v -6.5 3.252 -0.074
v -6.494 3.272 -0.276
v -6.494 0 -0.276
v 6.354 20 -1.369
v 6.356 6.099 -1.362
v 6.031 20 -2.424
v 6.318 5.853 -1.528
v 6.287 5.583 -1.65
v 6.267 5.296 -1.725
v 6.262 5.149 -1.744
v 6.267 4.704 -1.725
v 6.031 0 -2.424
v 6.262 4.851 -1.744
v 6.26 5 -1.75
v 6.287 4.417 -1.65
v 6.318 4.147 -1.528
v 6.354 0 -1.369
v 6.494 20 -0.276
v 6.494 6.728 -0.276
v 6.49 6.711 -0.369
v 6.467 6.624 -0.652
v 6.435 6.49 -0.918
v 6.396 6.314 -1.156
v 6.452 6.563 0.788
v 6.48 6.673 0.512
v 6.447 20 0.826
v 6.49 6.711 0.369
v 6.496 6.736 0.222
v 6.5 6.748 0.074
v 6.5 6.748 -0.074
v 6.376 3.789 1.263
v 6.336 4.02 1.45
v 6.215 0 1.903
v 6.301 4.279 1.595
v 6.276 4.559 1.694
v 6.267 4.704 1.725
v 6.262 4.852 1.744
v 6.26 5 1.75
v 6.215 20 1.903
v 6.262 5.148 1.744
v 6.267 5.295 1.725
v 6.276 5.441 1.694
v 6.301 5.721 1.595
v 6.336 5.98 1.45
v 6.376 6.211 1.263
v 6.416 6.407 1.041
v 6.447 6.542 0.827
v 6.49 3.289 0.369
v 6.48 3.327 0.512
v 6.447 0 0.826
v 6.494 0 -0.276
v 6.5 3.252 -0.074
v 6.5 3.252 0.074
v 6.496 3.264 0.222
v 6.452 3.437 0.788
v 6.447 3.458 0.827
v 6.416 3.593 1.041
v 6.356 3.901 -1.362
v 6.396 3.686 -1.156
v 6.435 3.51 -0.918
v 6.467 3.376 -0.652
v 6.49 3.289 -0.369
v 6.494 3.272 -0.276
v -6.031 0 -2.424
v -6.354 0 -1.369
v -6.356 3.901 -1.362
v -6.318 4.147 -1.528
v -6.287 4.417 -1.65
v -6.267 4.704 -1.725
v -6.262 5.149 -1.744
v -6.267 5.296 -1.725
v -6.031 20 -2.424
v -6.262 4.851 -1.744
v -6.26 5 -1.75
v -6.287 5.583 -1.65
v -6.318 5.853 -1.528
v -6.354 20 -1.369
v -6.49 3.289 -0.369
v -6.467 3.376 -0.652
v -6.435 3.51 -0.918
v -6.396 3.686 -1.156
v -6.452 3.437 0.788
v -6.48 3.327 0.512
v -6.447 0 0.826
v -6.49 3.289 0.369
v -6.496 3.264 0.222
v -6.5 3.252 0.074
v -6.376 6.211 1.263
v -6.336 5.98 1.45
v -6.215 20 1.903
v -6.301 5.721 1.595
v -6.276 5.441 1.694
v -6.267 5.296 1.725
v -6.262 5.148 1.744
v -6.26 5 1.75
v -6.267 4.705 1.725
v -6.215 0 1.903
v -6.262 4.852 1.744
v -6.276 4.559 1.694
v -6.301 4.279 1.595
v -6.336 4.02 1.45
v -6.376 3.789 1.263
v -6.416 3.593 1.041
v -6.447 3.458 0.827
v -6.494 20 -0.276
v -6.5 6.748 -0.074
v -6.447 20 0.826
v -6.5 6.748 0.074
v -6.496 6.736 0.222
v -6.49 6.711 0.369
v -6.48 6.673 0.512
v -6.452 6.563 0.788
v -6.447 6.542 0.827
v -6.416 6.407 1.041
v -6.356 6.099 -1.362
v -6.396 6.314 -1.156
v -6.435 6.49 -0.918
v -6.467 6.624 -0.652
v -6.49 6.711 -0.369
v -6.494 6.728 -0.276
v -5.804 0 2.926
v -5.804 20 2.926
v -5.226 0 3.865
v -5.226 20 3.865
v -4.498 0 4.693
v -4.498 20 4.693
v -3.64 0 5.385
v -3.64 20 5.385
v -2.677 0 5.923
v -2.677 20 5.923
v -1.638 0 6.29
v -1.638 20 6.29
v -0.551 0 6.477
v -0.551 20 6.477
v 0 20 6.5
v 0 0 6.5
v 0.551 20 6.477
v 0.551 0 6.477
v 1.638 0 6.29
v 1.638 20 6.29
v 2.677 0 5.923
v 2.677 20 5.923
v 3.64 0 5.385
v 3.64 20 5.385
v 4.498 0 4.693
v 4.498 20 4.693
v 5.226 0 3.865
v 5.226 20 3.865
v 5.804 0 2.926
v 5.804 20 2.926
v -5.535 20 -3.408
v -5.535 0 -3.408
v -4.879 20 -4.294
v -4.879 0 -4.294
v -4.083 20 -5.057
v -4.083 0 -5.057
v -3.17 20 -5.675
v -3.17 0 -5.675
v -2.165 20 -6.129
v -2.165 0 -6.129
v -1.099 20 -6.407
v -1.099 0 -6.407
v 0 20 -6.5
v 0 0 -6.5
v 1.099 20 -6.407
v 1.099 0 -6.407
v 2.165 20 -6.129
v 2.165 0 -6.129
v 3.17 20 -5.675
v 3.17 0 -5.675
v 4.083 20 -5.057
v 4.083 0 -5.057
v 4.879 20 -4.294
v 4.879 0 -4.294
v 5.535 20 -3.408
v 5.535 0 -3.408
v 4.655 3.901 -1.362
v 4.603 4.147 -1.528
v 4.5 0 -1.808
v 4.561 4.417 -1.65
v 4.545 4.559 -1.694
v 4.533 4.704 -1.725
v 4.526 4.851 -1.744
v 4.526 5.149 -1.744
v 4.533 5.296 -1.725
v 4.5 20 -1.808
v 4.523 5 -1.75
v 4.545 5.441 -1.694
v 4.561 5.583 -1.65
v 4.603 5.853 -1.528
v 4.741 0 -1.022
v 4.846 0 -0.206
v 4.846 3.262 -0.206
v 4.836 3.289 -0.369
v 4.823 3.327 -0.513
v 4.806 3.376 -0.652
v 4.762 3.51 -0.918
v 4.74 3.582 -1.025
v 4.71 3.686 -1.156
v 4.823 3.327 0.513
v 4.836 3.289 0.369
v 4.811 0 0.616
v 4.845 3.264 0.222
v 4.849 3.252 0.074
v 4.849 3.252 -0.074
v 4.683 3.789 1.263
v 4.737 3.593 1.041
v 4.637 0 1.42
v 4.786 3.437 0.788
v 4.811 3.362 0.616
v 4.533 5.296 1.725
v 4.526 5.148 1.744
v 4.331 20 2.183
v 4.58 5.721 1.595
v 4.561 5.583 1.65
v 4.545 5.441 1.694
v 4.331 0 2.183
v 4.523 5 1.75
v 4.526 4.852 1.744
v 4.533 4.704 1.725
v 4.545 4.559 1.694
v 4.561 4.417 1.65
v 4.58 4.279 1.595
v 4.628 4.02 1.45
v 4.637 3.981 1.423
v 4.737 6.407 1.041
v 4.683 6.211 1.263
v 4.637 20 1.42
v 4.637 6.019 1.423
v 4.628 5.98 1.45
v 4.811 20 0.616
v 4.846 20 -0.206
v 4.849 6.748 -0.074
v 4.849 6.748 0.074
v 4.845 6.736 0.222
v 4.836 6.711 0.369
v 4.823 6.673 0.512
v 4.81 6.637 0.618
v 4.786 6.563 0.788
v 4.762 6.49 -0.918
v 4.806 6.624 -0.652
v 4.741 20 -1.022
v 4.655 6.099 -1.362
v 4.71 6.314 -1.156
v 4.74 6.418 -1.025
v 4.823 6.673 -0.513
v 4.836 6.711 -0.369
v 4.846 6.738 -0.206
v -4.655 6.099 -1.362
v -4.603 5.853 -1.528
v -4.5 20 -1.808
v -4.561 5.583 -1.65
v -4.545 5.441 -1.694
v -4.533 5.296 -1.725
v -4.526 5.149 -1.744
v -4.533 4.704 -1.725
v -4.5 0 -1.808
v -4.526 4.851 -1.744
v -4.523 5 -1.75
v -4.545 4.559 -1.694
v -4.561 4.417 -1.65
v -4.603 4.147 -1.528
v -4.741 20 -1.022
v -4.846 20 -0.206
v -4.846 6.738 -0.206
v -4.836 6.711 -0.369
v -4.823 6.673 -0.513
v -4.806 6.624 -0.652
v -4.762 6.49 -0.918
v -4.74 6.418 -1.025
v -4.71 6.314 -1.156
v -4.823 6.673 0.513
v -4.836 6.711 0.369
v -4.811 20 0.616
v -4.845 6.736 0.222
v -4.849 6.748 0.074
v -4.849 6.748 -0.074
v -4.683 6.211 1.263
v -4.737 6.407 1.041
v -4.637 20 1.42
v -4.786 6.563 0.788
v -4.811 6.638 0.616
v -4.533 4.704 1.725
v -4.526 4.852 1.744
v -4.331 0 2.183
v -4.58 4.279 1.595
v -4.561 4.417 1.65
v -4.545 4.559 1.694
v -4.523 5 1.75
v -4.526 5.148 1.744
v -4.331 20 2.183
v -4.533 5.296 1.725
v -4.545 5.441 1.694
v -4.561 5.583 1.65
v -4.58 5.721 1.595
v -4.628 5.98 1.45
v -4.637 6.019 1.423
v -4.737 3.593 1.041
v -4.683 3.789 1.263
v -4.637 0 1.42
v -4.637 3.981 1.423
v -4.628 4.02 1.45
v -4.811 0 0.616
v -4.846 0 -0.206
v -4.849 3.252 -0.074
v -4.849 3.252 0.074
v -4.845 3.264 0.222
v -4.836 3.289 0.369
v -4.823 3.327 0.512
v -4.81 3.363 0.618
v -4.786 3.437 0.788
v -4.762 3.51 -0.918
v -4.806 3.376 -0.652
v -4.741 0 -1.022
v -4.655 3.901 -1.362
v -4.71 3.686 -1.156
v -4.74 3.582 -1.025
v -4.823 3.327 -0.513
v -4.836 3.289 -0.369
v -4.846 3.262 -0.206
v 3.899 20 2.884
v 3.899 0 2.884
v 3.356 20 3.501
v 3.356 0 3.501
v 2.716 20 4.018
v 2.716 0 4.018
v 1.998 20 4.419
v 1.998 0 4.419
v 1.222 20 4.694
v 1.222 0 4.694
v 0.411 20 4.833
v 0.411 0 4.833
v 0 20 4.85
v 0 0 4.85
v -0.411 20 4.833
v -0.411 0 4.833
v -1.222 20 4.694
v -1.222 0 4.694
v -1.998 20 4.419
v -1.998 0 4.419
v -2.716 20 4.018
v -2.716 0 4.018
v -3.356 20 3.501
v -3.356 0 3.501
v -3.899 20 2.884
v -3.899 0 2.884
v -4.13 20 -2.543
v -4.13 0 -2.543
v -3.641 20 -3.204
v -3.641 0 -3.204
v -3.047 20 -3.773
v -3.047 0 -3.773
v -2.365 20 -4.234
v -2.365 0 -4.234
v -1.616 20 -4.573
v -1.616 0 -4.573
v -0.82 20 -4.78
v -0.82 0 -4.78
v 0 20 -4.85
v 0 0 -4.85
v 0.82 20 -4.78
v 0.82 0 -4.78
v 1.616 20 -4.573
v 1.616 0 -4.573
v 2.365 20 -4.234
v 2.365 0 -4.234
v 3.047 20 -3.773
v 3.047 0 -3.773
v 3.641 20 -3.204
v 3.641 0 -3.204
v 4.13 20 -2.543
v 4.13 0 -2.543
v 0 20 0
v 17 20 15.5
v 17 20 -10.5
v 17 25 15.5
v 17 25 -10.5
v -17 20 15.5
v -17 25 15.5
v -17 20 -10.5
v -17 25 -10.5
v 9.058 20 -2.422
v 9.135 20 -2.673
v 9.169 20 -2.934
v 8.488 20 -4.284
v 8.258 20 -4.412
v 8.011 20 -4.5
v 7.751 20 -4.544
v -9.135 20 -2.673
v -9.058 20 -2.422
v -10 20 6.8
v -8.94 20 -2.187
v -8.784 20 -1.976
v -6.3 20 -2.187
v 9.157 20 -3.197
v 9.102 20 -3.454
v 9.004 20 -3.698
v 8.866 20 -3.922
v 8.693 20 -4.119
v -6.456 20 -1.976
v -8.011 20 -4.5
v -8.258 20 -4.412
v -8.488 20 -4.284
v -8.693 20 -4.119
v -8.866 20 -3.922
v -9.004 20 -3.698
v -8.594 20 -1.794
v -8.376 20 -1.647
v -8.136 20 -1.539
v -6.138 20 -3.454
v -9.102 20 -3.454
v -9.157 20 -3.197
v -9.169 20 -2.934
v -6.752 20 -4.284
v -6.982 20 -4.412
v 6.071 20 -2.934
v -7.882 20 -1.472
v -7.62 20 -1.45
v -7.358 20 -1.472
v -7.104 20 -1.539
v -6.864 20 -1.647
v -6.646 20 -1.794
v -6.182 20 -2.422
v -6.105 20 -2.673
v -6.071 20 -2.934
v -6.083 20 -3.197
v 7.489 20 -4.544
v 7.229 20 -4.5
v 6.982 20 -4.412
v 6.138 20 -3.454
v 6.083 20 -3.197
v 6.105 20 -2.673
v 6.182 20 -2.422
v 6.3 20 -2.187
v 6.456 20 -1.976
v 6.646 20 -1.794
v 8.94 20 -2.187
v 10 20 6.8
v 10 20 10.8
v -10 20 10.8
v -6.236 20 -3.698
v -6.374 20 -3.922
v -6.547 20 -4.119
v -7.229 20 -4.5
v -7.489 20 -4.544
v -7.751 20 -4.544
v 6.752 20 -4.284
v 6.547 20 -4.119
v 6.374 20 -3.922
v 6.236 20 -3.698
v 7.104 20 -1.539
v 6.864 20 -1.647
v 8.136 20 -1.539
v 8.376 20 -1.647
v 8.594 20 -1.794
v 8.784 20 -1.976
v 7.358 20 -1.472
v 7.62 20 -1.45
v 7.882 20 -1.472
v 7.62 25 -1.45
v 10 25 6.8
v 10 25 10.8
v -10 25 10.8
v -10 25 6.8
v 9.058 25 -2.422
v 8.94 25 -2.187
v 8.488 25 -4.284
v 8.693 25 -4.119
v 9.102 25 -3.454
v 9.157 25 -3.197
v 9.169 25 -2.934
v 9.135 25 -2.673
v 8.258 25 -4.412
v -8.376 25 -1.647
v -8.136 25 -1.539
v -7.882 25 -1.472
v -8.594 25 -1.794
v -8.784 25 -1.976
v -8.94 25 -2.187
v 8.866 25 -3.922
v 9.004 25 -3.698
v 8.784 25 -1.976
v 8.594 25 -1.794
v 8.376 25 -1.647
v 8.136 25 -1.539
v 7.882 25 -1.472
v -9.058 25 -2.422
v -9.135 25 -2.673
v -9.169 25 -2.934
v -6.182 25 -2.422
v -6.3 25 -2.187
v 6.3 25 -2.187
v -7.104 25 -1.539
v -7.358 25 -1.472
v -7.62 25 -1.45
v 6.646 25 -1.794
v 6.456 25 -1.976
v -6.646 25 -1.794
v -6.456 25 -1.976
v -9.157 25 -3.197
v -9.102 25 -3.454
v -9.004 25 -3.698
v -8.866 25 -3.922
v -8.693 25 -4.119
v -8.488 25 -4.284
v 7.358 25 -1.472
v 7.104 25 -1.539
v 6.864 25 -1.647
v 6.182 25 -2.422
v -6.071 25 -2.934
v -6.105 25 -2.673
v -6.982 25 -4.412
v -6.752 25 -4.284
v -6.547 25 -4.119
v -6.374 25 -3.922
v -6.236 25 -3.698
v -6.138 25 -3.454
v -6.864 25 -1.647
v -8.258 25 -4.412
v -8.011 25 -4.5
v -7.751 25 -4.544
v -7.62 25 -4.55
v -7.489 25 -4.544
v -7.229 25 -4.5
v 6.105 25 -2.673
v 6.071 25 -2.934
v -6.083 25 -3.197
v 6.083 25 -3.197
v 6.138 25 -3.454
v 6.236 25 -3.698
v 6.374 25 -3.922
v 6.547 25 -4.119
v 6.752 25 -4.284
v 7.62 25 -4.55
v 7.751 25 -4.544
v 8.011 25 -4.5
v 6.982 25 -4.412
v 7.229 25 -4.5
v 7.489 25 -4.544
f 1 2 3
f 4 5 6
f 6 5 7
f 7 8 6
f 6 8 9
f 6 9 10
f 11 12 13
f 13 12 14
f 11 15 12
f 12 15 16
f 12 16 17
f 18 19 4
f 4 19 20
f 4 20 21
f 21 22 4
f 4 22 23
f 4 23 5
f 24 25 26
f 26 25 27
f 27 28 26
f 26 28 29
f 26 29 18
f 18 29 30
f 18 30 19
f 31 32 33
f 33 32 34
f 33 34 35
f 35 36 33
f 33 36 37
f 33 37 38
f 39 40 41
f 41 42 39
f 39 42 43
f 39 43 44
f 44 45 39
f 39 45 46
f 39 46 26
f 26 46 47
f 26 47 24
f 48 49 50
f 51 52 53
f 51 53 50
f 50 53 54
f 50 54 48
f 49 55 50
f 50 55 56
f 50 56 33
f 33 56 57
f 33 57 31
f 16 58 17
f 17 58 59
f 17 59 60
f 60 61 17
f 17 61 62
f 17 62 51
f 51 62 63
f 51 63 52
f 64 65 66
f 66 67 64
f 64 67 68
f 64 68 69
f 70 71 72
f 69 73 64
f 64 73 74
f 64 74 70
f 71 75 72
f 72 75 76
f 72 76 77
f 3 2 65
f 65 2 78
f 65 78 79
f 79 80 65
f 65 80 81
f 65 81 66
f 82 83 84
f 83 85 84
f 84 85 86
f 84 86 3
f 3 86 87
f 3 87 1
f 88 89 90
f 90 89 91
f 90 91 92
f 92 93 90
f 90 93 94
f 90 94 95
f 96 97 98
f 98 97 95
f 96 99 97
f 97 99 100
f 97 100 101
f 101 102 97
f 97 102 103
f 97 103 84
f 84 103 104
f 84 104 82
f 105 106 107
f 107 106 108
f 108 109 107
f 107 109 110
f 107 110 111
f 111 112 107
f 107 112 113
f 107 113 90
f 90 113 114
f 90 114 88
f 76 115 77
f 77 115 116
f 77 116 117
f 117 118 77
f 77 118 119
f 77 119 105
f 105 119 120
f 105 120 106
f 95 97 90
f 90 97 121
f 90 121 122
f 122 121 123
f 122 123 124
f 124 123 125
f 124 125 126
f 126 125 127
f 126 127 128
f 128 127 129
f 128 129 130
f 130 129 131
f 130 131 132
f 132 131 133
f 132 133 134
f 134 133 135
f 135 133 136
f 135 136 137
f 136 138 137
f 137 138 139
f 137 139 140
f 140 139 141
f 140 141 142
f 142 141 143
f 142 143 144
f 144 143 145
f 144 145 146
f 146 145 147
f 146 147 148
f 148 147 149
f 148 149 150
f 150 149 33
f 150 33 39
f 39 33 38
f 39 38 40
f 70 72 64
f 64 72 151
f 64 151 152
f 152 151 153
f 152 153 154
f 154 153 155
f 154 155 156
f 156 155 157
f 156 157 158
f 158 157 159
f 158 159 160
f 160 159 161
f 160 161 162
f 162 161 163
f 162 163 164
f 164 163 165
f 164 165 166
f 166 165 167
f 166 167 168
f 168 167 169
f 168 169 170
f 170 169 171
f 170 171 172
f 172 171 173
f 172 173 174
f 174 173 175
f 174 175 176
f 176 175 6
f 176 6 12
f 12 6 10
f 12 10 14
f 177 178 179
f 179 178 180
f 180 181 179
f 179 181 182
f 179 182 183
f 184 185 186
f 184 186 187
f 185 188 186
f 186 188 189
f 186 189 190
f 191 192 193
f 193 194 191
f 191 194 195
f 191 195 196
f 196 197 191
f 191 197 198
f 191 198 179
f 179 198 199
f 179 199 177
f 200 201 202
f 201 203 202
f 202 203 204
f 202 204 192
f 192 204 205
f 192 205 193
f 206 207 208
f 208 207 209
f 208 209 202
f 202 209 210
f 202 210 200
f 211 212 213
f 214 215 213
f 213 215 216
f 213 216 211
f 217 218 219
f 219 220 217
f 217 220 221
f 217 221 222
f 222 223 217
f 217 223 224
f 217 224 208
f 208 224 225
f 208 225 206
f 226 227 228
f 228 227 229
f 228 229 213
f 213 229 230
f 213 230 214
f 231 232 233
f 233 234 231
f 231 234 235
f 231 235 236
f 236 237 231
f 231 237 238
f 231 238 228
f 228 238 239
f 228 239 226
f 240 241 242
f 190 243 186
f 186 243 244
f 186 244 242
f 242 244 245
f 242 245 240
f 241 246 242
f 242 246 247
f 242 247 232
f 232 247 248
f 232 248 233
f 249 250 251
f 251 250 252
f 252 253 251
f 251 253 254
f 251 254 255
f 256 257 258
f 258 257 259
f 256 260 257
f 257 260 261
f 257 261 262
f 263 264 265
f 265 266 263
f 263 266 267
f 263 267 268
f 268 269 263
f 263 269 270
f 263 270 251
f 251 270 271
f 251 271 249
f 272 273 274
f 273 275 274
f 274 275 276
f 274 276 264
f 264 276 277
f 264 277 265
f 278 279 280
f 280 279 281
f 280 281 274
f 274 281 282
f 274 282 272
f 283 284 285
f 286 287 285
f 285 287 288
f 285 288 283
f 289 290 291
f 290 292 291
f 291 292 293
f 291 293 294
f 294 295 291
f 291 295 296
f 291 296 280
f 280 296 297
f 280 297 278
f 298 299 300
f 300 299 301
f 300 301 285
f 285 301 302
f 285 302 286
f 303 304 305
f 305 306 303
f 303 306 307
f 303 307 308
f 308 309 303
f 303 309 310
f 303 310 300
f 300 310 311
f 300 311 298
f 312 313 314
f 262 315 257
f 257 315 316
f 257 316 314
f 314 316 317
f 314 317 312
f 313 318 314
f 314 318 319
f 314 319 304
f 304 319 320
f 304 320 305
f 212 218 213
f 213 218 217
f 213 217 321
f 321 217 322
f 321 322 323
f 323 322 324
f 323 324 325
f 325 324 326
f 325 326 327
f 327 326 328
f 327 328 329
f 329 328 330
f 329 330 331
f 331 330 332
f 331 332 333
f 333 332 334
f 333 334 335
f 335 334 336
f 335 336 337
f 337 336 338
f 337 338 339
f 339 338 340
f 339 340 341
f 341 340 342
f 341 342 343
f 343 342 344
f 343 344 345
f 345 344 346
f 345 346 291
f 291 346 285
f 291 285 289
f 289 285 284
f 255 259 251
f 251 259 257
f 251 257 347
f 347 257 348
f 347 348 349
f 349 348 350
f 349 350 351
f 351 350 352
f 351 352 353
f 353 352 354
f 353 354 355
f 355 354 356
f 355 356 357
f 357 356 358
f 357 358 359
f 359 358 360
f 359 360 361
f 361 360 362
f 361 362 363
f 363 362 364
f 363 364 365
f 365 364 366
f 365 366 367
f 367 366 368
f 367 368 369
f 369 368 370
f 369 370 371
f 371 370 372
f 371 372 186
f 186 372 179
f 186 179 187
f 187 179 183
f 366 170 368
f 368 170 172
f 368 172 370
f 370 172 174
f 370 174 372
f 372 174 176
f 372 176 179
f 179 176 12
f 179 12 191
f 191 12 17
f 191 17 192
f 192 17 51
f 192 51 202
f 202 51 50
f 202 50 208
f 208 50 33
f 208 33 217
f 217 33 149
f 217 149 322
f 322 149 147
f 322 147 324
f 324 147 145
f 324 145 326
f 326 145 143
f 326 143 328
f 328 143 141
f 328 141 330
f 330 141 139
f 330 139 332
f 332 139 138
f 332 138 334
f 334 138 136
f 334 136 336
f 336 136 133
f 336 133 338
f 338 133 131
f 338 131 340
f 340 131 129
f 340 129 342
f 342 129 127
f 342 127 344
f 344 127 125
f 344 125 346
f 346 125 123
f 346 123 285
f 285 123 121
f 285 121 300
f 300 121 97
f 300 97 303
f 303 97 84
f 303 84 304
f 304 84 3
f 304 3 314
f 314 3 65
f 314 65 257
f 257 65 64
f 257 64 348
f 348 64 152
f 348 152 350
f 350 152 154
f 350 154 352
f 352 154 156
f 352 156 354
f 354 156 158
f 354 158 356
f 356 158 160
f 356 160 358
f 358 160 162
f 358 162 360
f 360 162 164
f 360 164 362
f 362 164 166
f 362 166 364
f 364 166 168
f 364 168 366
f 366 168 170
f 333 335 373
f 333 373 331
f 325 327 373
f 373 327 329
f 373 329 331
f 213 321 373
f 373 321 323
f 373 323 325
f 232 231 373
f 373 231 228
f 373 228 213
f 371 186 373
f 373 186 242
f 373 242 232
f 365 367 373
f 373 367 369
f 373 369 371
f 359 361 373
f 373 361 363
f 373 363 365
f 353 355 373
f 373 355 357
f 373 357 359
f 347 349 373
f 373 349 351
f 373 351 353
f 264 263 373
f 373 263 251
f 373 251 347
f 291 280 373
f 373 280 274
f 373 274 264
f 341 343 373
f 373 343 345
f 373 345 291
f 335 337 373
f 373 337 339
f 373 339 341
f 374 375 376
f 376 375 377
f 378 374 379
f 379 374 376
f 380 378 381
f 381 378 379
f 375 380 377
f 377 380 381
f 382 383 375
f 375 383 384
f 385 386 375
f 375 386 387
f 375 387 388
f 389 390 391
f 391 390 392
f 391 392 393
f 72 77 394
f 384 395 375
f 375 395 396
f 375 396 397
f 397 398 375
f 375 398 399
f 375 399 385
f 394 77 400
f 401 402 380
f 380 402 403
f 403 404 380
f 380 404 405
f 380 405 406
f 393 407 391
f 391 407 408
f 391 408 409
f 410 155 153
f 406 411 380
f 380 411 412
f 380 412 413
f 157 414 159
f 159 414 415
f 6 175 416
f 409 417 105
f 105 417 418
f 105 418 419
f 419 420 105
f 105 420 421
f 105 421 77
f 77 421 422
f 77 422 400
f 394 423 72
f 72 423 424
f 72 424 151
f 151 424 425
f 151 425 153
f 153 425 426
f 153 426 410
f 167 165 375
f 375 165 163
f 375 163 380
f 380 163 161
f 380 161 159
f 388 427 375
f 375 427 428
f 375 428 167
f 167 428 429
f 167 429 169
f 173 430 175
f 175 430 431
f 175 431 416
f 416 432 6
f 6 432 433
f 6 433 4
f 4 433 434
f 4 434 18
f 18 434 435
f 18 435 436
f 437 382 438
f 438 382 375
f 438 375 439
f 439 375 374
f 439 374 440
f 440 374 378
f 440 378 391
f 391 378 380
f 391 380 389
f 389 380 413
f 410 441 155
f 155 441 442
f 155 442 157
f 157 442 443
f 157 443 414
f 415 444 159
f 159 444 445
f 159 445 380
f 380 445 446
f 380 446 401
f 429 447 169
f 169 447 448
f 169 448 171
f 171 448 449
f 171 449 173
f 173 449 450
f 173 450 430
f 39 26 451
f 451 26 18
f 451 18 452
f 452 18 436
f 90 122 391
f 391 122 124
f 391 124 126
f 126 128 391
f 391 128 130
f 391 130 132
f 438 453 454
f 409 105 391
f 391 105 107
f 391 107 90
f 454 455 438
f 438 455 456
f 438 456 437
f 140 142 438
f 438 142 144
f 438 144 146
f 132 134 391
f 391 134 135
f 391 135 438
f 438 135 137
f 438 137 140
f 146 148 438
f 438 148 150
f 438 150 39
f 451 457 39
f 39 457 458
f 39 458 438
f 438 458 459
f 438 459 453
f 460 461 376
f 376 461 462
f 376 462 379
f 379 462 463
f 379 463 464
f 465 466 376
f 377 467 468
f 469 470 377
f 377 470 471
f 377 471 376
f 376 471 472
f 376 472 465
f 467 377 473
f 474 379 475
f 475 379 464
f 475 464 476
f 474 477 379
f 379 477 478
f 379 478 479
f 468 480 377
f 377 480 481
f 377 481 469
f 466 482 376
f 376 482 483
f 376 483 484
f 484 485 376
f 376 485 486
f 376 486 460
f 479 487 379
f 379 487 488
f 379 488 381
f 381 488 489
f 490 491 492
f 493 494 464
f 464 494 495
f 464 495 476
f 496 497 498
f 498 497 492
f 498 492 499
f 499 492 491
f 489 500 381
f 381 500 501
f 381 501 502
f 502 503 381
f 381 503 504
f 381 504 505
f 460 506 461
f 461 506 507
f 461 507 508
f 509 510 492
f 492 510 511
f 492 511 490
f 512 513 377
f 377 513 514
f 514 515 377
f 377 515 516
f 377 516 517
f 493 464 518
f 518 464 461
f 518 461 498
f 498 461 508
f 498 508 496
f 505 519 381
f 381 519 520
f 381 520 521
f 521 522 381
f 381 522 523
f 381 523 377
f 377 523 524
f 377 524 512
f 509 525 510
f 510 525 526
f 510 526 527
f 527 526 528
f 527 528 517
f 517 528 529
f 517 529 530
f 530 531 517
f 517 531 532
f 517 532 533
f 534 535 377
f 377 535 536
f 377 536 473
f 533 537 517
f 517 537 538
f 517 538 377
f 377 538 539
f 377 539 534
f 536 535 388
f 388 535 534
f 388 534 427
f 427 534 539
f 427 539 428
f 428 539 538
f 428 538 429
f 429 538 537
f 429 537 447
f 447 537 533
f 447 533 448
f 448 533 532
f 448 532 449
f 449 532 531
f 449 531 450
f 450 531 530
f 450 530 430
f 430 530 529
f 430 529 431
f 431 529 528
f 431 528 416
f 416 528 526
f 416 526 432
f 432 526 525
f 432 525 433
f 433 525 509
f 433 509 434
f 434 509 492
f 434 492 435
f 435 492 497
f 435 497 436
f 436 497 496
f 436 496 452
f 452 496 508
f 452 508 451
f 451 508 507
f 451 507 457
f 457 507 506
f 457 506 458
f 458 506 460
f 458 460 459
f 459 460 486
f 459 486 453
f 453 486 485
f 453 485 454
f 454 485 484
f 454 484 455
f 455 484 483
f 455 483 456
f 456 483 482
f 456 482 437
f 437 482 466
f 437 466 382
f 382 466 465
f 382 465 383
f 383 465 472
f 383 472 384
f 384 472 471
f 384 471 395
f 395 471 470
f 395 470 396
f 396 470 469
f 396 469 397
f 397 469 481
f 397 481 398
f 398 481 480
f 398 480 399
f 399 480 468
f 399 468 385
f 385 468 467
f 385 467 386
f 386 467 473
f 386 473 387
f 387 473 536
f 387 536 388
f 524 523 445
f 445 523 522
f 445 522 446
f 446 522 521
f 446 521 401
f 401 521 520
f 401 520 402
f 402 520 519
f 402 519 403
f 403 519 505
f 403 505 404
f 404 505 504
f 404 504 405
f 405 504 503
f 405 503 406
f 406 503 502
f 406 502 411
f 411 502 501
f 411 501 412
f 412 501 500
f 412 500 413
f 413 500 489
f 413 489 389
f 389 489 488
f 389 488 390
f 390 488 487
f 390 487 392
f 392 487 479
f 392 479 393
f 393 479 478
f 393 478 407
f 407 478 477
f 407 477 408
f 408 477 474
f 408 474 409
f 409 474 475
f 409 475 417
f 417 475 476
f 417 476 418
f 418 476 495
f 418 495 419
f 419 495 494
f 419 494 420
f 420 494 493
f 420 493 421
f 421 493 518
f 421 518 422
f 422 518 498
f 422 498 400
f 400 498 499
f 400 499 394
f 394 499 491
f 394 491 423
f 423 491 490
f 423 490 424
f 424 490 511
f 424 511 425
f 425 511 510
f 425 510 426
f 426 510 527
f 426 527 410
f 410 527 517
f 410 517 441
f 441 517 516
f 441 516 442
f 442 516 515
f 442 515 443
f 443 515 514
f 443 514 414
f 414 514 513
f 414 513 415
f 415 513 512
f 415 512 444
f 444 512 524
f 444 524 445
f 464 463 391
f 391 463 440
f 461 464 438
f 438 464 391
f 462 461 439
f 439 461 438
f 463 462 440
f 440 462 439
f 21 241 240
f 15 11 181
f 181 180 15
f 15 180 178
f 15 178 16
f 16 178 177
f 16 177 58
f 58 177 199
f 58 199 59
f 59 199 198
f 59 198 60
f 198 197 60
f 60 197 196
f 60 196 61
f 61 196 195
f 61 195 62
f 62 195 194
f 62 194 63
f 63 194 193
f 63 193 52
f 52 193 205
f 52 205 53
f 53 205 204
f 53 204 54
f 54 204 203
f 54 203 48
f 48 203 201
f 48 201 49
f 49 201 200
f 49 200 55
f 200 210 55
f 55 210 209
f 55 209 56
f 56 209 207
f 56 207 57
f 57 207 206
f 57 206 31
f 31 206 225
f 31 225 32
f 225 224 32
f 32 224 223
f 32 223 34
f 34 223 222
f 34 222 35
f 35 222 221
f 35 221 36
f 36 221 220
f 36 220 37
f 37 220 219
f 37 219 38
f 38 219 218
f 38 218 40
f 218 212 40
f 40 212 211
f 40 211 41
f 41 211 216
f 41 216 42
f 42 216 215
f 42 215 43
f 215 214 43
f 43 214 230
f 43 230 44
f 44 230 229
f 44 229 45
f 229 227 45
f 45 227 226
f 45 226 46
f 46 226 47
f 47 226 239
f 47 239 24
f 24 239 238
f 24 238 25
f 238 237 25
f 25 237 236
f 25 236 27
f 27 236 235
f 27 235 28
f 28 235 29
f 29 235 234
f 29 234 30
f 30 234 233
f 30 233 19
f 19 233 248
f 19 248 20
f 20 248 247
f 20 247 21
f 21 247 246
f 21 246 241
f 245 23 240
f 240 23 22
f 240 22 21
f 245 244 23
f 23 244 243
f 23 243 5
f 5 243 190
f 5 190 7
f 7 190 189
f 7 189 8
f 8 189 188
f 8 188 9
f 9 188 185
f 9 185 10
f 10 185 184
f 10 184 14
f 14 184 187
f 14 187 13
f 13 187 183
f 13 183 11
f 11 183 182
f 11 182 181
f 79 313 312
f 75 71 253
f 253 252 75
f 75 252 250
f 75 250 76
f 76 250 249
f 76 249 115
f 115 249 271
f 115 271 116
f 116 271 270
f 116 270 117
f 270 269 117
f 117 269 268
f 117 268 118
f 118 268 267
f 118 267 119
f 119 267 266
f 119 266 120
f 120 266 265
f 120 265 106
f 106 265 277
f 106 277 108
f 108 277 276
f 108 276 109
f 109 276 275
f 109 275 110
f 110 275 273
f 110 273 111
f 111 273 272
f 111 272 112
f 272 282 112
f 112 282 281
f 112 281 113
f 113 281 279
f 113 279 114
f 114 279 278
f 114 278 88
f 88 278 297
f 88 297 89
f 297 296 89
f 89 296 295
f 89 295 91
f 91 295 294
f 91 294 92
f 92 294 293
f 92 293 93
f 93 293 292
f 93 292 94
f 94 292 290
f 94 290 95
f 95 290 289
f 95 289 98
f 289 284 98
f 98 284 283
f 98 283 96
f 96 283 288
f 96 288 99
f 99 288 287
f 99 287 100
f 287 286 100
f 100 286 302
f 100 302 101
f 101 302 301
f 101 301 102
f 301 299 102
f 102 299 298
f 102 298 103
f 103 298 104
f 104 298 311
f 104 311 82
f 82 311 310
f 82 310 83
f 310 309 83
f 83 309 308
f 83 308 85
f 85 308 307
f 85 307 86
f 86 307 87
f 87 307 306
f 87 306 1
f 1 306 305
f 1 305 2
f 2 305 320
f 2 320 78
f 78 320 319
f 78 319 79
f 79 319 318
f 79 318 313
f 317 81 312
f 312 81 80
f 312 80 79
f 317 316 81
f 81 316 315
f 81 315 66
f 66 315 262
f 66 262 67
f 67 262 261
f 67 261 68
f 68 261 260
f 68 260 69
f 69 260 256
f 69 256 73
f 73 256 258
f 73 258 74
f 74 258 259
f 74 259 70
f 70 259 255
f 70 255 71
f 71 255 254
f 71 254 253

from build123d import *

# Parameters (mm, degrees)
SKETCH1_R               = 6.5
SKETCH1_R_2             = 4.85
BOSS_EXTRUDE1_DEPTH     = 25
SKETCH2_W               = 34
SKETCH2_H               = 26
BOSS_EXTRUDE2_DEPTH     = 5
CUT_EXTRUDE1_DEPTH      = 31.483602149
CUT_EXTRUDE1_DEPTH_BACK = 31.483602149
SKETCH3_R               = 1.55
SKETCH3_W               = 20
SKETCH3_H               = 4
CUT_EXTRUDE2_DEPTH      = 45.958314025
CUT_EXTRUDE2_DEPTH_BACK = 45.958314025
SKETCH4_R               = 1.75


with BuildPart() as part:
    # Sketch1 → Boss-Extrude1 (new body)
    with BuildSketch(Plane(origin=(0, 0, 0), x_dir=(1, 0, 0), z_dir=(0, 1, 0))):
        with Locations(Location((0, 0, 0), (0, 0, 270))):
            Circle(SKETCH1_R)
        with Locations(Location((0, 0, 0), (0, 0, 270))):
            Circle(SKETCH1_R_2, mode=Mode.SUBTRACT)
    extrude(amount=BOSS_EXTRUDE1_DEPTH)

    # Sketch2 → Boss-Extrude2 (add)
    with BuildSketch(Plane(origin=(0, 25, 0), x_dir=(1, 0, 0), z_dir=(0, 1, 0))):
        with Locations((0, -2.5)):
            Rectangle(SKETCH2_W, SKETCH2_H)
    extrude(amount=-BOSS_EXTRUDE2_DEPTH)

    # Sketch3 → Cut-Extrude1 (cut, two sides: drawn at the far end of the back side and taken through both)
    with BuildSketch(Plane(origin=(0, 20, 0), x_dir=(-1, 0, 0), z_dir=(0, -1, 0)).offset(-CUT_EXTRUDE1_DEPTH_BACK)):
        with Locations(Location((-7.62, 3, 0), (0, 0, 270))):
            Circle(SKETCH3_R)
        with Locations(Location((7.62, 3, 0), (0, 0, 270))):
            Circle(SKETCH3_R)
        with Locations((0, -8.8)):
            Rectangle(SKETCH3_W, SKETCH3_H)
    extrude(amount=CUT_EXTRUDE1_DEPTH + CUT_EXTRUDE1_DEPTH_BACK, mode=Mode.SUBTRACT)

    # Sketch4 → Cut-Extrude2 (cut, two sides: drawn at the far end of the back side and taken through both)
    with BuildSketch(Plane(origin=(17, 0, 0), x_dir=(0, 0, -1), z_dir=(1, 0, 0)).offset(-CUT_EXTRUDE2_DEPTH_BACK)):
        with Locations((0, 5)):
            Circle(SKETCH4_R)
    extrude(amount=CUT_EXTRUDE2_DEPTH + CUT_EXTRUDE2_DEPTH_BACK, mode=Mode.SUBTRACT)


solid = part.part
